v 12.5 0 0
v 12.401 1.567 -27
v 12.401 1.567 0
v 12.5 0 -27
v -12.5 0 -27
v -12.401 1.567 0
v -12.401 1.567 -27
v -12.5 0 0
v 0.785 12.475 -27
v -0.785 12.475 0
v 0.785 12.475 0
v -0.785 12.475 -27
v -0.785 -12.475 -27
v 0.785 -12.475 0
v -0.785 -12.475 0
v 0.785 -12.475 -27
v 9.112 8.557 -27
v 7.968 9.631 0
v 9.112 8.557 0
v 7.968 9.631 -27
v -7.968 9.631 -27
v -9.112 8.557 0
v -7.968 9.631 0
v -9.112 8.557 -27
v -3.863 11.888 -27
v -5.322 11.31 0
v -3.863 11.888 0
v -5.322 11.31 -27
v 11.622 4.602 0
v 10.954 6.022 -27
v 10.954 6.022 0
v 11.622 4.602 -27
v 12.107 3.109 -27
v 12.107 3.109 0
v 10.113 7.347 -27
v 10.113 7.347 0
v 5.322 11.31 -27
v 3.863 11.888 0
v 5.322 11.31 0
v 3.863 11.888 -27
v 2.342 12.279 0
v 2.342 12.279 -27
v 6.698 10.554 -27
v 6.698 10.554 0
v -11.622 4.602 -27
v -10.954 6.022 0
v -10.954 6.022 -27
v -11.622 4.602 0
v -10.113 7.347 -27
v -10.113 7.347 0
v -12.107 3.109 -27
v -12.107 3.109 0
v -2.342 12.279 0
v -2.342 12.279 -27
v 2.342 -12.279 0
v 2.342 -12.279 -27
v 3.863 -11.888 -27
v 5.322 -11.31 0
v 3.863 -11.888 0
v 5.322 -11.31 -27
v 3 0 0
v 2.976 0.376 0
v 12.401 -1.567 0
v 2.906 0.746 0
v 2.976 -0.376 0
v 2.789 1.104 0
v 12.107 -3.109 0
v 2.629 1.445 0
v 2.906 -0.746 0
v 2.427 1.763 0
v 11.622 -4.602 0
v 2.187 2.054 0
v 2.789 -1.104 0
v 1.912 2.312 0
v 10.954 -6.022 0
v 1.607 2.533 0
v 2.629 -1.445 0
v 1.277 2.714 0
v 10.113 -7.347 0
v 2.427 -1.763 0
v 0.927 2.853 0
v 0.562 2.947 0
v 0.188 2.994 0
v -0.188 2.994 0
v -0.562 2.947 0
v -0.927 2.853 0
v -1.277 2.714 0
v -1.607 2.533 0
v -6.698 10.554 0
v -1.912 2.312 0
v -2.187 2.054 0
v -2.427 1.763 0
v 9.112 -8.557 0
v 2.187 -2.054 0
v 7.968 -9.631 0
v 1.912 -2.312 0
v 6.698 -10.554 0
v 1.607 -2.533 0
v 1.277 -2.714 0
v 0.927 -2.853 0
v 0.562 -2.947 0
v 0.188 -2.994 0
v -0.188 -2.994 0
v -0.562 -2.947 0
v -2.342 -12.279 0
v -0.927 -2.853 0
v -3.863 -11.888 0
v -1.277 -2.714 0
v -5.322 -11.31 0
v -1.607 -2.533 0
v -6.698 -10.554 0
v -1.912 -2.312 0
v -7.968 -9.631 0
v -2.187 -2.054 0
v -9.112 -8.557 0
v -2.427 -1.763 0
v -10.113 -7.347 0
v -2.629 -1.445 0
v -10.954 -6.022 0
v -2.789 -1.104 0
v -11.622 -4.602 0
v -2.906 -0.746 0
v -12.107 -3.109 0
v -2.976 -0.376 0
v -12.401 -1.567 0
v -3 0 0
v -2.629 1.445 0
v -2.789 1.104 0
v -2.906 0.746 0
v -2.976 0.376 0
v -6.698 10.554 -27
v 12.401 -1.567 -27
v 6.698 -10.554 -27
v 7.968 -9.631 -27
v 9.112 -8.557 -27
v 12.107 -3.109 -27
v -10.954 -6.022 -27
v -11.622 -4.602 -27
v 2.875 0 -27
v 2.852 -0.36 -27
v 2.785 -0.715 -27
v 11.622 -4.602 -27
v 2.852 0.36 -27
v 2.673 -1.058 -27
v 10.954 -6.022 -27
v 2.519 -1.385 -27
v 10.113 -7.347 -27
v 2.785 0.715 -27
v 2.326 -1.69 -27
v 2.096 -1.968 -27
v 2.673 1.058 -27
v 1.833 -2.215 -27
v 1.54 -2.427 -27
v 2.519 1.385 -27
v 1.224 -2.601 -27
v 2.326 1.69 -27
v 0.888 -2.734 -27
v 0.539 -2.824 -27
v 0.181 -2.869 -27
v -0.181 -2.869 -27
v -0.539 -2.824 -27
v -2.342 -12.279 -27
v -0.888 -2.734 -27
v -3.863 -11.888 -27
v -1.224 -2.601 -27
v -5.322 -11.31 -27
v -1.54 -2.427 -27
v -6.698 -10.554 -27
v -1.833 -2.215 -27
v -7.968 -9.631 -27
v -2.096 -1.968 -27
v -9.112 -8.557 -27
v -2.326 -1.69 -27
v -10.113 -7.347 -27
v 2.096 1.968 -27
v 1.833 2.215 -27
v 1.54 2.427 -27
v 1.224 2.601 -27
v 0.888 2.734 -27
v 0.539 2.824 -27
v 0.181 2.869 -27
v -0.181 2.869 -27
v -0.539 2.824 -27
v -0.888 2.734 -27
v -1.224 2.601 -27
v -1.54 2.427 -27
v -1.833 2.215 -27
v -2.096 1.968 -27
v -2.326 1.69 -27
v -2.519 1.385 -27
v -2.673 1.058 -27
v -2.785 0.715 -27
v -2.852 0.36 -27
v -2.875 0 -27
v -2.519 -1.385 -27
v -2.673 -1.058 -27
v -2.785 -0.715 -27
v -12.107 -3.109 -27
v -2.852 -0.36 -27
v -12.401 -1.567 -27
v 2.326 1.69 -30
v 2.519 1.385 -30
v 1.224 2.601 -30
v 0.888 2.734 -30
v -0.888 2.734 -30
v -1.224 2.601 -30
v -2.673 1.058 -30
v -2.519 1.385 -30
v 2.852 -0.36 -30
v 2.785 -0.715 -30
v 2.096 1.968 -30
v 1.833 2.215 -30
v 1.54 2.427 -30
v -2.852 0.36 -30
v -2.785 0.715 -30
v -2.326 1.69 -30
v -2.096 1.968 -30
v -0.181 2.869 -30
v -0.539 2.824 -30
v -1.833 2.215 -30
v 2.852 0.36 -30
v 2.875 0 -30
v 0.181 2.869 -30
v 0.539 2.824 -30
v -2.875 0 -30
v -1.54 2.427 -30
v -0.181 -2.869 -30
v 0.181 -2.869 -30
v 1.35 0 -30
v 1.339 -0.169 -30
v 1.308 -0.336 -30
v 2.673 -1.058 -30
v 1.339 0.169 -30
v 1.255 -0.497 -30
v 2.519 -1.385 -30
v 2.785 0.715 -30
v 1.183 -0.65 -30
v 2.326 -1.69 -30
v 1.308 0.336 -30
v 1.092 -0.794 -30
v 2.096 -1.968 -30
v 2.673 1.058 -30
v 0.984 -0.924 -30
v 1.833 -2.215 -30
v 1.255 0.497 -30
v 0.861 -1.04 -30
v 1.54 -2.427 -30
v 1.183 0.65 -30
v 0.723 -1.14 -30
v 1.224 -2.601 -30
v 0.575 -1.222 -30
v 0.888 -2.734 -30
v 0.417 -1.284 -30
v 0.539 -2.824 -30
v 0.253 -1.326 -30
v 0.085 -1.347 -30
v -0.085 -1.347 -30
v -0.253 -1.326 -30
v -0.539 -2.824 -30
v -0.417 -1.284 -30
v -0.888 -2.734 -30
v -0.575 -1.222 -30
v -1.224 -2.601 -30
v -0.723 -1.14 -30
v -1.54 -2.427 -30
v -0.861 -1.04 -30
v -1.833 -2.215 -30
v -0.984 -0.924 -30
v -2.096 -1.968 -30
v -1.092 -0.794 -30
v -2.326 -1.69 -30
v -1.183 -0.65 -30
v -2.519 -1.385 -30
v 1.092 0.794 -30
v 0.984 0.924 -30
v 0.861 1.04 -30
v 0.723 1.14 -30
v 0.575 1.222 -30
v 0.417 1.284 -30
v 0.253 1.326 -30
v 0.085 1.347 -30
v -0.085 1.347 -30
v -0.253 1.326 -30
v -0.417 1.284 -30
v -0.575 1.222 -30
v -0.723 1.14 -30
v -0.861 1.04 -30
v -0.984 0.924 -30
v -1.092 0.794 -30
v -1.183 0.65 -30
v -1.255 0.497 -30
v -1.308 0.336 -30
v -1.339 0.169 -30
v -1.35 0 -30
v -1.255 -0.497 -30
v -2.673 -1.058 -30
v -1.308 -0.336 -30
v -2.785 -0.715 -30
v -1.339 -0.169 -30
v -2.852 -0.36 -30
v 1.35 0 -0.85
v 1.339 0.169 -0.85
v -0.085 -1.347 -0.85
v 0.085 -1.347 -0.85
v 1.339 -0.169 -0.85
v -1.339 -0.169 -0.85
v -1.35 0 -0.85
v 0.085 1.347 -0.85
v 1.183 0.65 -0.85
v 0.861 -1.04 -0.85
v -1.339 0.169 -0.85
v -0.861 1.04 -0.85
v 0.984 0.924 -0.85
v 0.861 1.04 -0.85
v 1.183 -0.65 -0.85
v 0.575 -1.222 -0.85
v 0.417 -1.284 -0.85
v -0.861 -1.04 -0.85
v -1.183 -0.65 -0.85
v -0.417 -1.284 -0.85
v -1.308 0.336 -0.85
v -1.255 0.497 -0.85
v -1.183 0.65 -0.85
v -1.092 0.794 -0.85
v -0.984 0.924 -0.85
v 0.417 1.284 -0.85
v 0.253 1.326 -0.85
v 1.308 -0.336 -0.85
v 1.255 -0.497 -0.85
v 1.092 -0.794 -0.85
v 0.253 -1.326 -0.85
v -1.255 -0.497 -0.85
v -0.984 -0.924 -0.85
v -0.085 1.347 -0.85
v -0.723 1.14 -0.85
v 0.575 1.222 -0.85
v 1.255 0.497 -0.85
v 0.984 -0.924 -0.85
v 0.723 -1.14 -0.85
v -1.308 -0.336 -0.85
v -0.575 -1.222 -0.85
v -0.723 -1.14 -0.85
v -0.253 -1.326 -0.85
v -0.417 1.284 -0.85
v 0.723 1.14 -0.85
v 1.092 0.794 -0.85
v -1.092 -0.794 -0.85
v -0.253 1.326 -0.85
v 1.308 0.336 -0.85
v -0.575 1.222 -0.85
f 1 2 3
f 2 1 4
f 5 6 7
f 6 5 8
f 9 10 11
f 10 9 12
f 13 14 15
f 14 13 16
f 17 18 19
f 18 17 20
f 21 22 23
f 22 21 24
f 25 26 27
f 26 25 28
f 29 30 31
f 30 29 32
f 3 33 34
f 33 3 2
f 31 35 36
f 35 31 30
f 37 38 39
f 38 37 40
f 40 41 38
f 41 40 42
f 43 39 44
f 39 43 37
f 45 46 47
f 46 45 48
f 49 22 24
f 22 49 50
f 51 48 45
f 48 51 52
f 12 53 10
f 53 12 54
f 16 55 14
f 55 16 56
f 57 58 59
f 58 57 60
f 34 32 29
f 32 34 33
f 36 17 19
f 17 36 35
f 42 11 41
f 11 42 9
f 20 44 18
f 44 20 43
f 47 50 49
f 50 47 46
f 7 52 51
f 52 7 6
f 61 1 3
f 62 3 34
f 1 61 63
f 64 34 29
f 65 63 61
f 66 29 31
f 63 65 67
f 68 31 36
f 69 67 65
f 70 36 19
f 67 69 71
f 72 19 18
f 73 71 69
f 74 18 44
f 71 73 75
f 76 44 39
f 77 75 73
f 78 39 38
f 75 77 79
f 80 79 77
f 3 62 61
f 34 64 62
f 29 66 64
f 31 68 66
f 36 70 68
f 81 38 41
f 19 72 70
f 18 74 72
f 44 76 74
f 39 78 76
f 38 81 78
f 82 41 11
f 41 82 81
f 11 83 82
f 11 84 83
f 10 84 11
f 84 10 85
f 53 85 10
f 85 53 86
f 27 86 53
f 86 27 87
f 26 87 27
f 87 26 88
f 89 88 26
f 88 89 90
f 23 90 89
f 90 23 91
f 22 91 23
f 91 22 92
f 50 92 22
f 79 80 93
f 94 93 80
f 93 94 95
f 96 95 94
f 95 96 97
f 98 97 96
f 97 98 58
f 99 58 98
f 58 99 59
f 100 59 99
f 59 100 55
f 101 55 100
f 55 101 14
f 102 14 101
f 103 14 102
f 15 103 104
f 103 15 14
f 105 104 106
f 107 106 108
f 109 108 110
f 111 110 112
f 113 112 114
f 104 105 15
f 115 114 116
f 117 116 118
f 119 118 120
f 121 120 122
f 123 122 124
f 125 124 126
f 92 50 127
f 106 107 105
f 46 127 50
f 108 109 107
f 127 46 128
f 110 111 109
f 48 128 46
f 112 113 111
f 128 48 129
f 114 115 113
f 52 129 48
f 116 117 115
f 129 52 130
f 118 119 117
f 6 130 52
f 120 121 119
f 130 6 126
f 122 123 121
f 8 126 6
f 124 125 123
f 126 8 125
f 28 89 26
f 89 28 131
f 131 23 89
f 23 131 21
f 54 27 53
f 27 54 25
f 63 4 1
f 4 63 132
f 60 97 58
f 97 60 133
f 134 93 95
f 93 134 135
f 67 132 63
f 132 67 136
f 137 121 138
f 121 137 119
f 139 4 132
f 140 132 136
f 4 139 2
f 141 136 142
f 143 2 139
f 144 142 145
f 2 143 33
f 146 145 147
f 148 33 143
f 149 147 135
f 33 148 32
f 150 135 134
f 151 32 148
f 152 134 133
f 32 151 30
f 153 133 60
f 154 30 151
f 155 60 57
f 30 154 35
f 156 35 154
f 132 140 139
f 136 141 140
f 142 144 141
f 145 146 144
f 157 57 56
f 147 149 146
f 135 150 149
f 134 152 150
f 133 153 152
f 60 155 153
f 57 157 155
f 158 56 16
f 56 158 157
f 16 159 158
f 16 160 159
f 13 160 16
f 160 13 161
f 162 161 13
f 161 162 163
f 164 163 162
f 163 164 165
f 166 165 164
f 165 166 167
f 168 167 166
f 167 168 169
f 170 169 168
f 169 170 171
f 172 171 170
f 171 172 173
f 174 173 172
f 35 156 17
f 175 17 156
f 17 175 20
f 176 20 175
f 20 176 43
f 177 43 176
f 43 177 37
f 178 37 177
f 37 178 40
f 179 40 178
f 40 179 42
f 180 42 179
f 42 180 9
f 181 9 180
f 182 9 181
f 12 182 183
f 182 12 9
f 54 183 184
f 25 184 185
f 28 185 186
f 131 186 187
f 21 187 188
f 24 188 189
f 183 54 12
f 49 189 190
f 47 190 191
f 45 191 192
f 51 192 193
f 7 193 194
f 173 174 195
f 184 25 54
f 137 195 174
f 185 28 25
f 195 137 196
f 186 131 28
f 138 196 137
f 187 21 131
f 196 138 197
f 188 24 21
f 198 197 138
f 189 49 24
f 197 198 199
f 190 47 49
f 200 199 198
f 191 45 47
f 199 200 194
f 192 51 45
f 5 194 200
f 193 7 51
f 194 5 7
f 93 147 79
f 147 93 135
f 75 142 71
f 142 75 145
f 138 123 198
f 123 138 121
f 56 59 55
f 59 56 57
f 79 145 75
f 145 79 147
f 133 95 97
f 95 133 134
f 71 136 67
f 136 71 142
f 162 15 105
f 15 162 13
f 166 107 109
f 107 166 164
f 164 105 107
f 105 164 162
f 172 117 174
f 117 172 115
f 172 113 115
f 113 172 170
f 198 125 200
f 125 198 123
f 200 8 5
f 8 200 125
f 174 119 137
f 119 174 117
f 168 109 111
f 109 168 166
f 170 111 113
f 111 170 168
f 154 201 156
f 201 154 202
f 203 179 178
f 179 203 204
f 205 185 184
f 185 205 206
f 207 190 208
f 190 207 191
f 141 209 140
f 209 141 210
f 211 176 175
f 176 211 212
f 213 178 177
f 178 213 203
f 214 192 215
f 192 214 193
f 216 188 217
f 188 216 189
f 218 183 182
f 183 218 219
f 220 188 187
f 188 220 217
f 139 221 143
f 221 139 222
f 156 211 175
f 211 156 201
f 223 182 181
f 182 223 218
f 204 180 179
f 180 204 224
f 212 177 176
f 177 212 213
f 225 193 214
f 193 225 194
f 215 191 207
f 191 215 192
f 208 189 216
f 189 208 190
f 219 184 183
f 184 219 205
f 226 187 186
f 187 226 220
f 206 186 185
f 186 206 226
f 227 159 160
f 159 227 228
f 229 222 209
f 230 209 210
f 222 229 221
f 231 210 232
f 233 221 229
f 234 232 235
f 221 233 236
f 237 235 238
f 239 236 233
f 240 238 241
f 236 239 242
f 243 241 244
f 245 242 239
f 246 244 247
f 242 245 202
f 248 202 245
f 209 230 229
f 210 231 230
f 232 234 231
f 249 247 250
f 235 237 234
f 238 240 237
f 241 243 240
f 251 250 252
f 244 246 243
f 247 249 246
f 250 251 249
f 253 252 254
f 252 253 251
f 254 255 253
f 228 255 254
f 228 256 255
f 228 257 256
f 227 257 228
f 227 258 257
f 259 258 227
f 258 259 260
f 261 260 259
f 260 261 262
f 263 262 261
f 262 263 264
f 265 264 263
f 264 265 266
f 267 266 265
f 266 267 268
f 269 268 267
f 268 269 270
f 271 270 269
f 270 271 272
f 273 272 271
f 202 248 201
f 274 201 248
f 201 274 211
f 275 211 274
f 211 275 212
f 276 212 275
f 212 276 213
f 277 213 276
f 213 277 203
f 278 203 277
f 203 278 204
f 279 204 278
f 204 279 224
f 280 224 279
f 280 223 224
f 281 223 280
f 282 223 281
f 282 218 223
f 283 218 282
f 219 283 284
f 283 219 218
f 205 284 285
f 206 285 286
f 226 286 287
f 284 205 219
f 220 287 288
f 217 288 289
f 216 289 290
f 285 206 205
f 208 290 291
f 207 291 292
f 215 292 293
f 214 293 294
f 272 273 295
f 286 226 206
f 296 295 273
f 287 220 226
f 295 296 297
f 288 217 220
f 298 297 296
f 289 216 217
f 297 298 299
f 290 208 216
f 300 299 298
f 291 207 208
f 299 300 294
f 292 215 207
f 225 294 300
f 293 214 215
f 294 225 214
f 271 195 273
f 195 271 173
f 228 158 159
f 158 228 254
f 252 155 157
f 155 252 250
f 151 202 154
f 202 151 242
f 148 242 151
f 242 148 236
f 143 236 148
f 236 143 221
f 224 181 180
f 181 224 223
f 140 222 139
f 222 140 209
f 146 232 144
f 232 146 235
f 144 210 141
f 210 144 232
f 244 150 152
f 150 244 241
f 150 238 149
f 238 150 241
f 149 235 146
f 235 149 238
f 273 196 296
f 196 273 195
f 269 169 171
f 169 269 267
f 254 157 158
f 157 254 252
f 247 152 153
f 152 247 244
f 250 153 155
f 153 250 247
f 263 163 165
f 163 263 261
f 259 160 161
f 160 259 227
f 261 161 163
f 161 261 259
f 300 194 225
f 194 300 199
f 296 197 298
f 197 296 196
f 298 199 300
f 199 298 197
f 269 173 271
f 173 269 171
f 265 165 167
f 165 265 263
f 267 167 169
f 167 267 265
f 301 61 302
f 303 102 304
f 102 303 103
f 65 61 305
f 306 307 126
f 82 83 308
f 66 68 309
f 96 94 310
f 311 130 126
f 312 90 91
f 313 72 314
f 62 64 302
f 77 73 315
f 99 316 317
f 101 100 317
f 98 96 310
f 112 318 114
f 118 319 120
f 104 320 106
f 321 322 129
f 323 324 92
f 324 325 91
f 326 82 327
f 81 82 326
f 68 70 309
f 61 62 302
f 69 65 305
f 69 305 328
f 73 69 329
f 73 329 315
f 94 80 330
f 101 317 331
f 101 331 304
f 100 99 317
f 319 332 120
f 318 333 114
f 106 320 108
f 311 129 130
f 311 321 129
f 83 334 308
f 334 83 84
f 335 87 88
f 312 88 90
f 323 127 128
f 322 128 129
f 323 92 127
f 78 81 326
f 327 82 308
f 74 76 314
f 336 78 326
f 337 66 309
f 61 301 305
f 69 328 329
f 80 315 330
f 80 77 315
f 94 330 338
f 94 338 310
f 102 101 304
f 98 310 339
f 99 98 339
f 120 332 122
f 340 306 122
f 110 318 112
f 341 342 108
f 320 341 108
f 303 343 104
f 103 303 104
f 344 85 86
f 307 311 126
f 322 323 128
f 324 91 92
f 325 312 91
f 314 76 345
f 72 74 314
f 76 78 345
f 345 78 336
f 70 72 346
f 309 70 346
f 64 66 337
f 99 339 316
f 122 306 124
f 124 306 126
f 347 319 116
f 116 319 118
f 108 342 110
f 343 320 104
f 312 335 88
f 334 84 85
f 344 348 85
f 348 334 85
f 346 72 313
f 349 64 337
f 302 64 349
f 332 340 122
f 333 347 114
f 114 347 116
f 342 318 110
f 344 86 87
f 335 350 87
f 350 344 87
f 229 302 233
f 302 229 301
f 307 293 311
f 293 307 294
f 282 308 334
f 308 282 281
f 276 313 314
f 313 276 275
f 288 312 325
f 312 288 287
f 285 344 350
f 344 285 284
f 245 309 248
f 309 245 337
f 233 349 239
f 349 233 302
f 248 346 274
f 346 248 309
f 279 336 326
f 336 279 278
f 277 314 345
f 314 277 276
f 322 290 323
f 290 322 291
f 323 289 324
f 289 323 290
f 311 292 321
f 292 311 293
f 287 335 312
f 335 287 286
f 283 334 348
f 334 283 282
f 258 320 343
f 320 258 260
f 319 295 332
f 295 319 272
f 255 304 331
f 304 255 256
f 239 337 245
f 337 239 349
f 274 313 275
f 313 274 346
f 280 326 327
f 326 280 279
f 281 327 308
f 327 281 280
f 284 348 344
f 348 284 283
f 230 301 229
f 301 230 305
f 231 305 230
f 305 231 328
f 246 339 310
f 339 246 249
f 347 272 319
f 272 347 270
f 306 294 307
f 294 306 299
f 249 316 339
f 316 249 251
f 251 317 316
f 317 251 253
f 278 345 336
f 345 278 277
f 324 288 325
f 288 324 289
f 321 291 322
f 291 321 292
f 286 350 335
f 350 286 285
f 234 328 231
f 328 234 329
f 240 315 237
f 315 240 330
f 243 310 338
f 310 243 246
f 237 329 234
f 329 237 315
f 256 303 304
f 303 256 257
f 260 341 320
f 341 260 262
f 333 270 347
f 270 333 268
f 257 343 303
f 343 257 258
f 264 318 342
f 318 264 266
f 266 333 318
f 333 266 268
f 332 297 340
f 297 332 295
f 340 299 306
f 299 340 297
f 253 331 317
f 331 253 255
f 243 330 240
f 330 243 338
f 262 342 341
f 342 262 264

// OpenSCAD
$fn = 50;

difference() {
	union() {
		translate(v = [0, 0, -27.0]) {
			cylinder(h = 27, r = 12.5);
		}
		#translate(v = [0, 0, -30.0]) {
			cylinder(h = 30, r = 2.875);
		}
	}
	union() {
		translate(v = [0, 0, 0]) {
			rotate(a = [0, 0, 0]) {
				difference() {
					union() {
						translate(v = [0, 0, -30.0]) {
							cylinder(h = 30, r = 1.0);
						}
						translate(v = [0, 0, -0.85]) {
							cylinder(h = 0.85, r1 = 1.35, r2 = 3.0);
						}
						translate(v = [0, 0, -30.0]) {
							cylinder(h = 30, r = 1.35);
						}
						translate(v = [0, 0, -30.0]) {
							cylinder(h = 30, r = 1.0);
						}
					}
					union();
				}
			}
		}
	}
}
